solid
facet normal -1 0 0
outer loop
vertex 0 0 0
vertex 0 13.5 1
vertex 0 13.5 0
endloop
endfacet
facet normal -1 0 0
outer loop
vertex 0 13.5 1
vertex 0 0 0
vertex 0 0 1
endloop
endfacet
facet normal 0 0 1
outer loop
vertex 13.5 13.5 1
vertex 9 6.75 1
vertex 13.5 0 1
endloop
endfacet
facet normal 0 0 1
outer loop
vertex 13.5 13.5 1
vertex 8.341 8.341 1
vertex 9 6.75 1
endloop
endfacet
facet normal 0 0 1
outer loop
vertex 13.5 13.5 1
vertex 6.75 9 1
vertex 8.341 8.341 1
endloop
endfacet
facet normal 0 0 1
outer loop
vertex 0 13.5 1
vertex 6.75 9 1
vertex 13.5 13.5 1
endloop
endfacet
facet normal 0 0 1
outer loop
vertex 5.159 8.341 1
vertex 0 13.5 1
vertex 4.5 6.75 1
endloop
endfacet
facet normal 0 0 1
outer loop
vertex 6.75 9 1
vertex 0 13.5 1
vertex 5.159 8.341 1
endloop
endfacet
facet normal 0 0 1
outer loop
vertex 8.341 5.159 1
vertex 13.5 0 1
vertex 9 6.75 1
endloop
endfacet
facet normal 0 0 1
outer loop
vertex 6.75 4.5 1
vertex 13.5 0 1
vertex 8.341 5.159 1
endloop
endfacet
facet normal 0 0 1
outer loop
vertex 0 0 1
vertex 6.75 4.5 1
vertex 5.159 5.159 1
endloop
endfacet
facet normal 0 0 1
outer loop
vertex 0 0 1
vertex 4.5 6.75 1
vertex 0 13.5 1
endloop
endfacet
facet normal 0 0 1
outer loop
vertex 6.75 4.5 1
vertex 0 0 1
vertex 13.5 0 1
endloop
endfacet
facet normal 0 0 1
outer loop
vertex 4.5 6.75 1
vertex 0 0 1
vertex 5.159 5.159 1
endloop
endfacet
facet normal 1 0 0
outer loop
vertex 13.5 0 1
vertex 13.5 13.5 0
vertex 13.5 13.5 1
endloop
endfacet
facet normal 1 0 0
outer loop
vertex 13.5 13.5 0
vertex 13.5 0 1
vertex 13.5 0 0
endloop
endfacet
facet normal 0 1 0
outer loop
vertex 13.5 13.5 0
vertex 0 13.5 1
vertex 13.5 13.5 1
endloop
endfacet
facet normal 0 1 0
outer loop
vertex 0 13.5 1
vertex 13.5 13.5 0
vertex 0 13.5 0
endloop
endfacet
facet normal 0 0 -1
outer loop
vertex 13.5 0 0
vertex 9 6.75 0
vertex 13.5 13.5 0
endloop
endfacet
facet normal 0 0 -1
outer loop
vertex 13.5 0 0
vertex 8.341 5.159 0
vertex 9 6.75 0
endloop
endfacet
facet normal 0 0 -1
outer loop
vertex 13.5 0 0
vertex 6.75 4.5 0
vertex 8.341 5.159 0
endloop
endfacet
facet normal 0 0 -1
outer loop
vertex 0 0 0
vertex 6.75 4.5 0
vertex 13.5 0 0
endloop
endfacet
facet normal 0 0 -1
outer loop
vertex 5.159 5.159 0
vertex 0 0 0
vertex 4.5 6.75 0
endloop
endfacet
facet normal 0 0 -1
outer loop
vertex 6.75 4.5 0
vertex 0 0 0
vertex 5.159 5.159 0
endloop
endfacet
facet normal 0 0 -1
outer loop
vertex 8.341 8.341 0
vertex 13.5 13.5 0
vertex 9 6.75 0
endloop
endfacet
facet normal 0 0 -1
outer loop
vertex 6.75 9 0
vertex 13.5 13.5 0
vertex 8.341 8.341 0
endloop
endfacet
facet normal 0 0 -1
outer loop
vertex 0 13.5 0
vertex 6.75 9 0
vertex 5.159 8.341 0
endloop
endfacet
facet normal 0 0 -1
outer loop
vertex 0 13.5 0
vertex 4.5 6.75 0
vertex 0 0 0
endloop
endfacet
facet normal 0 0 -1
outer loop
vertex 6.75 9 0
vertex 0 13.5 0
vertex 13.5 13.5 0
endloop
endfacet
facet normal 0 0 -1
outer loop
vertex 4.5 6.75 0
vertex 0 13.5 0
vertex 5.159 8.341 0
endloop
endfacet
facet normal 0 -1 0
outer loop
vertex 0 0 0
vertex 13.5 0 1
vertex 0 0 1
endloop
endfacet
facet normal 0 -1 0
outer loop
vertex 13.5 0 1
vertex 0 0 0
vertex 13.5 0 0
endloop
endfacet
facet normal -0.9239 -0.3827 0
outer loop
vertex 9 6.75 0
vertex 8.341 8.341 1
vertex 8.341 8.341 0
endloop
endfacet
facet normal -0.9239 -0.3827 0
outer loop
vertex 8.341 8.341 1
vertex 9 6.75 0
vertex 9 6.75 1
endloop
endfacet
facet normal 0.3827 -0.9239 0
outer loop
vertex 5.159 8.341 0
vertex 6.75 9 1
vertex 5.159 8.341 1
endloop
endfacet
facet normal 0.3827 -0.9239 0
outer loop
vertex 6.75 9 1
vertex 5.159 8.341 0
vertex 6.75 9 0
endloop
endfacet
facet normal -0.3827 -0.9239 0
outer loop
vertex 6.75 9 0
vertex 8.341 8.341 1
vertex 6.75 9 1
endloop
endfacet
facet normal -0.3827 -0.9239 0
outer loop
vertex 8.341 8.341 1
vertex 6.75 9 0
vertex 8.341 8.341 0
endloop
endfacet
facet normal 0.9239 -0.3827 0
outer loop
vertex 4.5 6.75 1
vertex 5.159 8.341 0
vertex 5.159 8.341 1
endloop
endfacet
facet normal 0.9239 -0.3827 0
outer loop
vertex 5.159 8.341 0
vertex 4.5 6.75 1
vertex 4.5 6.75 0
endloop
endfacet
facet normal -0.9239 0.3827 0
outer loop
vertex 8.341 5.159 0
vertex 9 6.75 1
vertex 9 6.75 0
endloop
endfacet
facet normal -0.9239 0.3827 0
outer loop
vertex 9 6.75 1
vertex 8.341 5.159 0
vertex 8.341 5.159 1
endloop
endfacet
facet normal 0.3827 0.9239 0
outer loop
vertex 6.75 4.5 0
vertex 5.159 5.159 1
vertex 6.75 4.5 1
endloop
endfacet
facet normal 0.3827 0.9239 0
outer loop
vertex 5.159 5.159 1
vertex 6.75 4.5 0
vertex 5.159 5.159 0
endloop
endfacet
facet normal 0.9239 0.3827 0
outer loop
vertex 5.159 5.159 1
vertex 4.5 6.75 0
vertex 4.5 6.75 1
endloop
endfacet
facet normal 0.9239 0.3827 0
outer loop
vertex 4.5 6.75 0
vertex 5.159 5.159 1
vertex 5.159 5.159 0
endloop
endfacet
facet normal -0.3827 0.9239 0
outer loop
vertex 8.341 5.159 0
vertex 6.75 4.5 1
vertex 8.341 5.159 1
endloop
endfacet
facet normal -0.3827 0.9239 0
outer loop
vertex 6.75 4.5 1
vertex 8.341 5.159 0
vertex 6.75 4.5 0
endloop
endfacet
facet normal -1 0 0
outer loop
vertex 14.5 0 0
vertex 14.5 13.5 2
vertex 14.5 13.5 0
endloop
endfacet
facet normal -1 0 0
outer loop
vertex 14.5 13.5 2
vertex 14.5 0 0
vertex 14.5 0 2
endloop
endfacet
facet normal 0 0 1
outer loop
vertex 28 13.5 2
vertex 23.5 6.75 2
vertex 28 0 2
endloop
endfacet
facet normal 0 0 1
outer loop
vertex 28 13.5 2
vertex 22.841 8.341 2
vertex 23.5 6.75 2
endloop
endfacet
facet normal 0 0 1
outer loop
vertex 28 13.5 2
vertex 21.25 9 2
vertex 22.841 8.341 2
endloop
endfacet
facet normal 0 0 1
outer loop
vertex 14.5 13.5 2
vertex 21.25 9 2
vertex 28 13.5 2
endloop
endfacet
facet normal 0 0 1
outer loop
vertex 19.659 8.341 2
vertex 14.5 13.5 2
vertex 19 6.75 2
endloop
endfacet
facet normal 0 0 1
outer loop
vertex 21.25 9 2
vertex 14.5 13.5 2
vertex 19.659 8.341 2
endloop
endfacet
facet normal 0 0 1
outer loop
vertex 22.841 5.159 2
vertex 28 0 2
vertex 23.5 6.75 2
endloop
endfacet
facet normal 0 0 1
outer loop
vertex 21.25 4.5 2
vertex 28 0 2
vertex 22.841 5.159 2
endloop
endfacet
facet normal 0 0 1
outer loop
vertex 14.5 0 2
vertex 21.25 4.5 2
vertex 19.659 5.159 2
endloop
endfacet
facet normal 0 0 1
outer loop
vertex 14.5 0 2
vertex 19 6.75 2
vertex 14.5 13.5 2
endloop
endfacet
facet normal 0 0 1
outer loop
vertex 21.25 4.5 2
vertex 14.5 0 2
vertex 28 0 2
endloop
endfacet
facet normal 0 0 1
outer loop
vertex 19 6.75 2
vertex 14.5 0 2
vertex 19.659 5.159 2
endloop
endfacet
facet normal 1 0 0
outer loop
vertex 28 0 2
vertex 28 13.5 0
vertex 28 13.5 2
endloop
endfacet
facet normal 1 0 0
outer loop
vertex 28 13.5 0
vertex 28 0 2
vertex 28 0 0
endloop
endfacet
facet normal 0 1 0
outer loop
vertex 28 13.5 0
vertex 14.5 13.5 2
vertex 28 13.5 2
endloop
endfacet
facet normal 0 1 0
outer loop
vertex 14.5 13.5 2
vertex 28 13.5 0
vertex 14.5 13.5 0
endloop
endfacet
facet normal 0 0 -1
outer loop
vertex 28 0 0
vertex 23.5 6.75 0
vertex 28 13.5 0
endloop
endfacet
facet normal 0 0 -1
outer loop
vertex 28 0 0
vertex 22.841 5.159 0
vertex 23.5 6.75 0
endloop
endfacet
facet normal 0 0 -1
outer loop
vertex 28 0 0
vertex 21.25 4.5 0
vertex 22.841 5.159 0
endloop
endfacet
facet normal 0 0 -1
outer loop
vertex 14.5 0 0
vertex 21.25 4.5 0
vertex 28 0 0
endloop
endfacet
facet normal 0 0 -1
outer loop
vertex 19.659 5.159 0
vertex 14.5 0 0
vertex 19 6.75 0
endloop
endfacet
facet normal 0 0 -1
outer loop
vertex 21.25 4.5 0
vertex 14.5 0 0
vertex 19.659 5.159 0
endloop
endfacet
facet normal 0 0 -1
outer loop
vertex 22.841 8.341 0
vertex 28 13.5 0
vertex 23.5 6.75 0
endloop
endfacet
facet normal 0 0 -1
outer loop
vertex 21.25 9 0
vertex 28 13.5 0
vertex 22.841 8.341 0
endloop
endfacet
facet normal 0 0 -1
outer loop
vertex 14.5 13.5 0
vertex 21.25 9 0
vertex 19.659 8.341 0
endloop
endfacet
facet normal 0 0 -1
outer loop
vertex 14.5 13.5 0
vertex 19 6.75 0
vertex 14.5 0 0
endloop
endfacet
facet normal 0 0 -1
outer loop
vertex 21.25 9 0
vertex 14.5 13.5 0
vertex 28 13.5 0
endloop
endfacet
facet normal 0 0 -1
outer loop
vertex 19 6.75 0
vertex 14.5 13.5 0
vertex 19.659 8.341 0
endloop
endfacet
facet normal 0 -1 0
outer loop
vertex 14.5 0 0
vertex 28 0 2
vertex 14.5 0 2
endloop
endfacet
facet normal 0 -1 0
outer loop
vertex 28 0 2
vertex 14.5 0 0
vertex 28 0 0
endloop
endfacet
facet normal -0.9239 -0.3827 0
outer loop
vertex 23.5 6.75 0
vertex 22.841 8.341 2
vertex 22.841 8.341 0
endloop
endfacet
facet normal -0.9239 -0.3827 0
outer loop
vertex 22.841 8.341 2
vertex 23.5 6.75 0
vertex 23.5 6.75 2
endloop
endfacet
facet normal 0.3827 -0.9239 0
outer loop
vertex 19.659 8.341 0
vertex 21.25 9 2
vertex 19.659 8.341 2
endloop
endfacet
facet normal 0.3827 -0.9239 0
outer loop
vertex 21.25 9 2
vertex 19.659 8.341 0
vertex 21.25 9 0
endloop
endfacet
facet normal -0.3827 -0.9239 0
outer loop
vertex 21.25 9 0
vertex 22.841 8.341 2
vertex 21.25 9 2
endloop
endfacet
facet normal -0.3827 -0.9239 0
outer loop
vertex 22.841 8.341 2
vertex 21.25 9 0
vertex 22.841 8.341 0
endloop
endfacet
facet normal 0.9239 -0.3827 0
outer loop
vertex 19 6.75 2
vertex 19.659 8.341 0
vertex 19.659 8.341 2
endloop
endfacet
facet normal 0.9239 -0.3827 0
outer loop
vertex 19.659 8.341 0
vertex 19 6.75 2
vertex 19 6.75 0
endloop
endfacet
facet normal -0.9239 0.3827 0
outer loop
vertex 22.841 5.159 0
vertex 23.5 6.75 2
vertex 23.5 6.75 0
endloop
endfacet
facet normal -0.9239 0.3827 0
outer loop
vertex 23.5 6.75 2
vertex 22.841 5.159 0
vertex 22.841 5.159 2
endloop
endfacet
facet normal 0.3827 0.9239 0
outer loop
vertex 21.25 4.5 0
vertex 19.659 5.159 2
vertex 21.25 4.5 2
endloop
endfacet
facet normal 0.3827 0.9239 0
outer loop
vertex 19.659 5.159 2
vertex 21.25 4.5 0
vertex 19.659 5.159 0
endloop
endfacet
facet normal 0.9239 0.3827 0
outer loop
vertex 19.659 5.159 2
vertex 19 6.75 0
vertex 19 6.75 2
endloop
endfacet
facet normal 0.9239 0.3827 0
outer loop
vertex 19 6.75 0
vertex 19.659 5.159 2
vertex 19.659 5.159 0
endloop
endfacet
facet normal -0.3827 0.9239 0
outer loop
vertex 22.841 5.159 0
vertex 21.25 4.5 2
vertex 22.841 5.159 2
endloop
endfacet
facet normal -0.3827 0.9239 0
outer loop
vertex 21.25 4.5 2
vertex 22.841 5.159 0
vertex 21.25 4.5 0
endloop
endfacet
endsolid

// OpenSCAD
screw_hole=4.5;
width=13.5;
length=13.5;

washer(1);
translate([width + 1, 0, 0])
washer(2);

module washer(thick){
difference(){
  cube([width, length, thick]);

  translate([width/2, length/2, -1])
  cylinder(r= (screw_hole / 2), h=10);
}
}
